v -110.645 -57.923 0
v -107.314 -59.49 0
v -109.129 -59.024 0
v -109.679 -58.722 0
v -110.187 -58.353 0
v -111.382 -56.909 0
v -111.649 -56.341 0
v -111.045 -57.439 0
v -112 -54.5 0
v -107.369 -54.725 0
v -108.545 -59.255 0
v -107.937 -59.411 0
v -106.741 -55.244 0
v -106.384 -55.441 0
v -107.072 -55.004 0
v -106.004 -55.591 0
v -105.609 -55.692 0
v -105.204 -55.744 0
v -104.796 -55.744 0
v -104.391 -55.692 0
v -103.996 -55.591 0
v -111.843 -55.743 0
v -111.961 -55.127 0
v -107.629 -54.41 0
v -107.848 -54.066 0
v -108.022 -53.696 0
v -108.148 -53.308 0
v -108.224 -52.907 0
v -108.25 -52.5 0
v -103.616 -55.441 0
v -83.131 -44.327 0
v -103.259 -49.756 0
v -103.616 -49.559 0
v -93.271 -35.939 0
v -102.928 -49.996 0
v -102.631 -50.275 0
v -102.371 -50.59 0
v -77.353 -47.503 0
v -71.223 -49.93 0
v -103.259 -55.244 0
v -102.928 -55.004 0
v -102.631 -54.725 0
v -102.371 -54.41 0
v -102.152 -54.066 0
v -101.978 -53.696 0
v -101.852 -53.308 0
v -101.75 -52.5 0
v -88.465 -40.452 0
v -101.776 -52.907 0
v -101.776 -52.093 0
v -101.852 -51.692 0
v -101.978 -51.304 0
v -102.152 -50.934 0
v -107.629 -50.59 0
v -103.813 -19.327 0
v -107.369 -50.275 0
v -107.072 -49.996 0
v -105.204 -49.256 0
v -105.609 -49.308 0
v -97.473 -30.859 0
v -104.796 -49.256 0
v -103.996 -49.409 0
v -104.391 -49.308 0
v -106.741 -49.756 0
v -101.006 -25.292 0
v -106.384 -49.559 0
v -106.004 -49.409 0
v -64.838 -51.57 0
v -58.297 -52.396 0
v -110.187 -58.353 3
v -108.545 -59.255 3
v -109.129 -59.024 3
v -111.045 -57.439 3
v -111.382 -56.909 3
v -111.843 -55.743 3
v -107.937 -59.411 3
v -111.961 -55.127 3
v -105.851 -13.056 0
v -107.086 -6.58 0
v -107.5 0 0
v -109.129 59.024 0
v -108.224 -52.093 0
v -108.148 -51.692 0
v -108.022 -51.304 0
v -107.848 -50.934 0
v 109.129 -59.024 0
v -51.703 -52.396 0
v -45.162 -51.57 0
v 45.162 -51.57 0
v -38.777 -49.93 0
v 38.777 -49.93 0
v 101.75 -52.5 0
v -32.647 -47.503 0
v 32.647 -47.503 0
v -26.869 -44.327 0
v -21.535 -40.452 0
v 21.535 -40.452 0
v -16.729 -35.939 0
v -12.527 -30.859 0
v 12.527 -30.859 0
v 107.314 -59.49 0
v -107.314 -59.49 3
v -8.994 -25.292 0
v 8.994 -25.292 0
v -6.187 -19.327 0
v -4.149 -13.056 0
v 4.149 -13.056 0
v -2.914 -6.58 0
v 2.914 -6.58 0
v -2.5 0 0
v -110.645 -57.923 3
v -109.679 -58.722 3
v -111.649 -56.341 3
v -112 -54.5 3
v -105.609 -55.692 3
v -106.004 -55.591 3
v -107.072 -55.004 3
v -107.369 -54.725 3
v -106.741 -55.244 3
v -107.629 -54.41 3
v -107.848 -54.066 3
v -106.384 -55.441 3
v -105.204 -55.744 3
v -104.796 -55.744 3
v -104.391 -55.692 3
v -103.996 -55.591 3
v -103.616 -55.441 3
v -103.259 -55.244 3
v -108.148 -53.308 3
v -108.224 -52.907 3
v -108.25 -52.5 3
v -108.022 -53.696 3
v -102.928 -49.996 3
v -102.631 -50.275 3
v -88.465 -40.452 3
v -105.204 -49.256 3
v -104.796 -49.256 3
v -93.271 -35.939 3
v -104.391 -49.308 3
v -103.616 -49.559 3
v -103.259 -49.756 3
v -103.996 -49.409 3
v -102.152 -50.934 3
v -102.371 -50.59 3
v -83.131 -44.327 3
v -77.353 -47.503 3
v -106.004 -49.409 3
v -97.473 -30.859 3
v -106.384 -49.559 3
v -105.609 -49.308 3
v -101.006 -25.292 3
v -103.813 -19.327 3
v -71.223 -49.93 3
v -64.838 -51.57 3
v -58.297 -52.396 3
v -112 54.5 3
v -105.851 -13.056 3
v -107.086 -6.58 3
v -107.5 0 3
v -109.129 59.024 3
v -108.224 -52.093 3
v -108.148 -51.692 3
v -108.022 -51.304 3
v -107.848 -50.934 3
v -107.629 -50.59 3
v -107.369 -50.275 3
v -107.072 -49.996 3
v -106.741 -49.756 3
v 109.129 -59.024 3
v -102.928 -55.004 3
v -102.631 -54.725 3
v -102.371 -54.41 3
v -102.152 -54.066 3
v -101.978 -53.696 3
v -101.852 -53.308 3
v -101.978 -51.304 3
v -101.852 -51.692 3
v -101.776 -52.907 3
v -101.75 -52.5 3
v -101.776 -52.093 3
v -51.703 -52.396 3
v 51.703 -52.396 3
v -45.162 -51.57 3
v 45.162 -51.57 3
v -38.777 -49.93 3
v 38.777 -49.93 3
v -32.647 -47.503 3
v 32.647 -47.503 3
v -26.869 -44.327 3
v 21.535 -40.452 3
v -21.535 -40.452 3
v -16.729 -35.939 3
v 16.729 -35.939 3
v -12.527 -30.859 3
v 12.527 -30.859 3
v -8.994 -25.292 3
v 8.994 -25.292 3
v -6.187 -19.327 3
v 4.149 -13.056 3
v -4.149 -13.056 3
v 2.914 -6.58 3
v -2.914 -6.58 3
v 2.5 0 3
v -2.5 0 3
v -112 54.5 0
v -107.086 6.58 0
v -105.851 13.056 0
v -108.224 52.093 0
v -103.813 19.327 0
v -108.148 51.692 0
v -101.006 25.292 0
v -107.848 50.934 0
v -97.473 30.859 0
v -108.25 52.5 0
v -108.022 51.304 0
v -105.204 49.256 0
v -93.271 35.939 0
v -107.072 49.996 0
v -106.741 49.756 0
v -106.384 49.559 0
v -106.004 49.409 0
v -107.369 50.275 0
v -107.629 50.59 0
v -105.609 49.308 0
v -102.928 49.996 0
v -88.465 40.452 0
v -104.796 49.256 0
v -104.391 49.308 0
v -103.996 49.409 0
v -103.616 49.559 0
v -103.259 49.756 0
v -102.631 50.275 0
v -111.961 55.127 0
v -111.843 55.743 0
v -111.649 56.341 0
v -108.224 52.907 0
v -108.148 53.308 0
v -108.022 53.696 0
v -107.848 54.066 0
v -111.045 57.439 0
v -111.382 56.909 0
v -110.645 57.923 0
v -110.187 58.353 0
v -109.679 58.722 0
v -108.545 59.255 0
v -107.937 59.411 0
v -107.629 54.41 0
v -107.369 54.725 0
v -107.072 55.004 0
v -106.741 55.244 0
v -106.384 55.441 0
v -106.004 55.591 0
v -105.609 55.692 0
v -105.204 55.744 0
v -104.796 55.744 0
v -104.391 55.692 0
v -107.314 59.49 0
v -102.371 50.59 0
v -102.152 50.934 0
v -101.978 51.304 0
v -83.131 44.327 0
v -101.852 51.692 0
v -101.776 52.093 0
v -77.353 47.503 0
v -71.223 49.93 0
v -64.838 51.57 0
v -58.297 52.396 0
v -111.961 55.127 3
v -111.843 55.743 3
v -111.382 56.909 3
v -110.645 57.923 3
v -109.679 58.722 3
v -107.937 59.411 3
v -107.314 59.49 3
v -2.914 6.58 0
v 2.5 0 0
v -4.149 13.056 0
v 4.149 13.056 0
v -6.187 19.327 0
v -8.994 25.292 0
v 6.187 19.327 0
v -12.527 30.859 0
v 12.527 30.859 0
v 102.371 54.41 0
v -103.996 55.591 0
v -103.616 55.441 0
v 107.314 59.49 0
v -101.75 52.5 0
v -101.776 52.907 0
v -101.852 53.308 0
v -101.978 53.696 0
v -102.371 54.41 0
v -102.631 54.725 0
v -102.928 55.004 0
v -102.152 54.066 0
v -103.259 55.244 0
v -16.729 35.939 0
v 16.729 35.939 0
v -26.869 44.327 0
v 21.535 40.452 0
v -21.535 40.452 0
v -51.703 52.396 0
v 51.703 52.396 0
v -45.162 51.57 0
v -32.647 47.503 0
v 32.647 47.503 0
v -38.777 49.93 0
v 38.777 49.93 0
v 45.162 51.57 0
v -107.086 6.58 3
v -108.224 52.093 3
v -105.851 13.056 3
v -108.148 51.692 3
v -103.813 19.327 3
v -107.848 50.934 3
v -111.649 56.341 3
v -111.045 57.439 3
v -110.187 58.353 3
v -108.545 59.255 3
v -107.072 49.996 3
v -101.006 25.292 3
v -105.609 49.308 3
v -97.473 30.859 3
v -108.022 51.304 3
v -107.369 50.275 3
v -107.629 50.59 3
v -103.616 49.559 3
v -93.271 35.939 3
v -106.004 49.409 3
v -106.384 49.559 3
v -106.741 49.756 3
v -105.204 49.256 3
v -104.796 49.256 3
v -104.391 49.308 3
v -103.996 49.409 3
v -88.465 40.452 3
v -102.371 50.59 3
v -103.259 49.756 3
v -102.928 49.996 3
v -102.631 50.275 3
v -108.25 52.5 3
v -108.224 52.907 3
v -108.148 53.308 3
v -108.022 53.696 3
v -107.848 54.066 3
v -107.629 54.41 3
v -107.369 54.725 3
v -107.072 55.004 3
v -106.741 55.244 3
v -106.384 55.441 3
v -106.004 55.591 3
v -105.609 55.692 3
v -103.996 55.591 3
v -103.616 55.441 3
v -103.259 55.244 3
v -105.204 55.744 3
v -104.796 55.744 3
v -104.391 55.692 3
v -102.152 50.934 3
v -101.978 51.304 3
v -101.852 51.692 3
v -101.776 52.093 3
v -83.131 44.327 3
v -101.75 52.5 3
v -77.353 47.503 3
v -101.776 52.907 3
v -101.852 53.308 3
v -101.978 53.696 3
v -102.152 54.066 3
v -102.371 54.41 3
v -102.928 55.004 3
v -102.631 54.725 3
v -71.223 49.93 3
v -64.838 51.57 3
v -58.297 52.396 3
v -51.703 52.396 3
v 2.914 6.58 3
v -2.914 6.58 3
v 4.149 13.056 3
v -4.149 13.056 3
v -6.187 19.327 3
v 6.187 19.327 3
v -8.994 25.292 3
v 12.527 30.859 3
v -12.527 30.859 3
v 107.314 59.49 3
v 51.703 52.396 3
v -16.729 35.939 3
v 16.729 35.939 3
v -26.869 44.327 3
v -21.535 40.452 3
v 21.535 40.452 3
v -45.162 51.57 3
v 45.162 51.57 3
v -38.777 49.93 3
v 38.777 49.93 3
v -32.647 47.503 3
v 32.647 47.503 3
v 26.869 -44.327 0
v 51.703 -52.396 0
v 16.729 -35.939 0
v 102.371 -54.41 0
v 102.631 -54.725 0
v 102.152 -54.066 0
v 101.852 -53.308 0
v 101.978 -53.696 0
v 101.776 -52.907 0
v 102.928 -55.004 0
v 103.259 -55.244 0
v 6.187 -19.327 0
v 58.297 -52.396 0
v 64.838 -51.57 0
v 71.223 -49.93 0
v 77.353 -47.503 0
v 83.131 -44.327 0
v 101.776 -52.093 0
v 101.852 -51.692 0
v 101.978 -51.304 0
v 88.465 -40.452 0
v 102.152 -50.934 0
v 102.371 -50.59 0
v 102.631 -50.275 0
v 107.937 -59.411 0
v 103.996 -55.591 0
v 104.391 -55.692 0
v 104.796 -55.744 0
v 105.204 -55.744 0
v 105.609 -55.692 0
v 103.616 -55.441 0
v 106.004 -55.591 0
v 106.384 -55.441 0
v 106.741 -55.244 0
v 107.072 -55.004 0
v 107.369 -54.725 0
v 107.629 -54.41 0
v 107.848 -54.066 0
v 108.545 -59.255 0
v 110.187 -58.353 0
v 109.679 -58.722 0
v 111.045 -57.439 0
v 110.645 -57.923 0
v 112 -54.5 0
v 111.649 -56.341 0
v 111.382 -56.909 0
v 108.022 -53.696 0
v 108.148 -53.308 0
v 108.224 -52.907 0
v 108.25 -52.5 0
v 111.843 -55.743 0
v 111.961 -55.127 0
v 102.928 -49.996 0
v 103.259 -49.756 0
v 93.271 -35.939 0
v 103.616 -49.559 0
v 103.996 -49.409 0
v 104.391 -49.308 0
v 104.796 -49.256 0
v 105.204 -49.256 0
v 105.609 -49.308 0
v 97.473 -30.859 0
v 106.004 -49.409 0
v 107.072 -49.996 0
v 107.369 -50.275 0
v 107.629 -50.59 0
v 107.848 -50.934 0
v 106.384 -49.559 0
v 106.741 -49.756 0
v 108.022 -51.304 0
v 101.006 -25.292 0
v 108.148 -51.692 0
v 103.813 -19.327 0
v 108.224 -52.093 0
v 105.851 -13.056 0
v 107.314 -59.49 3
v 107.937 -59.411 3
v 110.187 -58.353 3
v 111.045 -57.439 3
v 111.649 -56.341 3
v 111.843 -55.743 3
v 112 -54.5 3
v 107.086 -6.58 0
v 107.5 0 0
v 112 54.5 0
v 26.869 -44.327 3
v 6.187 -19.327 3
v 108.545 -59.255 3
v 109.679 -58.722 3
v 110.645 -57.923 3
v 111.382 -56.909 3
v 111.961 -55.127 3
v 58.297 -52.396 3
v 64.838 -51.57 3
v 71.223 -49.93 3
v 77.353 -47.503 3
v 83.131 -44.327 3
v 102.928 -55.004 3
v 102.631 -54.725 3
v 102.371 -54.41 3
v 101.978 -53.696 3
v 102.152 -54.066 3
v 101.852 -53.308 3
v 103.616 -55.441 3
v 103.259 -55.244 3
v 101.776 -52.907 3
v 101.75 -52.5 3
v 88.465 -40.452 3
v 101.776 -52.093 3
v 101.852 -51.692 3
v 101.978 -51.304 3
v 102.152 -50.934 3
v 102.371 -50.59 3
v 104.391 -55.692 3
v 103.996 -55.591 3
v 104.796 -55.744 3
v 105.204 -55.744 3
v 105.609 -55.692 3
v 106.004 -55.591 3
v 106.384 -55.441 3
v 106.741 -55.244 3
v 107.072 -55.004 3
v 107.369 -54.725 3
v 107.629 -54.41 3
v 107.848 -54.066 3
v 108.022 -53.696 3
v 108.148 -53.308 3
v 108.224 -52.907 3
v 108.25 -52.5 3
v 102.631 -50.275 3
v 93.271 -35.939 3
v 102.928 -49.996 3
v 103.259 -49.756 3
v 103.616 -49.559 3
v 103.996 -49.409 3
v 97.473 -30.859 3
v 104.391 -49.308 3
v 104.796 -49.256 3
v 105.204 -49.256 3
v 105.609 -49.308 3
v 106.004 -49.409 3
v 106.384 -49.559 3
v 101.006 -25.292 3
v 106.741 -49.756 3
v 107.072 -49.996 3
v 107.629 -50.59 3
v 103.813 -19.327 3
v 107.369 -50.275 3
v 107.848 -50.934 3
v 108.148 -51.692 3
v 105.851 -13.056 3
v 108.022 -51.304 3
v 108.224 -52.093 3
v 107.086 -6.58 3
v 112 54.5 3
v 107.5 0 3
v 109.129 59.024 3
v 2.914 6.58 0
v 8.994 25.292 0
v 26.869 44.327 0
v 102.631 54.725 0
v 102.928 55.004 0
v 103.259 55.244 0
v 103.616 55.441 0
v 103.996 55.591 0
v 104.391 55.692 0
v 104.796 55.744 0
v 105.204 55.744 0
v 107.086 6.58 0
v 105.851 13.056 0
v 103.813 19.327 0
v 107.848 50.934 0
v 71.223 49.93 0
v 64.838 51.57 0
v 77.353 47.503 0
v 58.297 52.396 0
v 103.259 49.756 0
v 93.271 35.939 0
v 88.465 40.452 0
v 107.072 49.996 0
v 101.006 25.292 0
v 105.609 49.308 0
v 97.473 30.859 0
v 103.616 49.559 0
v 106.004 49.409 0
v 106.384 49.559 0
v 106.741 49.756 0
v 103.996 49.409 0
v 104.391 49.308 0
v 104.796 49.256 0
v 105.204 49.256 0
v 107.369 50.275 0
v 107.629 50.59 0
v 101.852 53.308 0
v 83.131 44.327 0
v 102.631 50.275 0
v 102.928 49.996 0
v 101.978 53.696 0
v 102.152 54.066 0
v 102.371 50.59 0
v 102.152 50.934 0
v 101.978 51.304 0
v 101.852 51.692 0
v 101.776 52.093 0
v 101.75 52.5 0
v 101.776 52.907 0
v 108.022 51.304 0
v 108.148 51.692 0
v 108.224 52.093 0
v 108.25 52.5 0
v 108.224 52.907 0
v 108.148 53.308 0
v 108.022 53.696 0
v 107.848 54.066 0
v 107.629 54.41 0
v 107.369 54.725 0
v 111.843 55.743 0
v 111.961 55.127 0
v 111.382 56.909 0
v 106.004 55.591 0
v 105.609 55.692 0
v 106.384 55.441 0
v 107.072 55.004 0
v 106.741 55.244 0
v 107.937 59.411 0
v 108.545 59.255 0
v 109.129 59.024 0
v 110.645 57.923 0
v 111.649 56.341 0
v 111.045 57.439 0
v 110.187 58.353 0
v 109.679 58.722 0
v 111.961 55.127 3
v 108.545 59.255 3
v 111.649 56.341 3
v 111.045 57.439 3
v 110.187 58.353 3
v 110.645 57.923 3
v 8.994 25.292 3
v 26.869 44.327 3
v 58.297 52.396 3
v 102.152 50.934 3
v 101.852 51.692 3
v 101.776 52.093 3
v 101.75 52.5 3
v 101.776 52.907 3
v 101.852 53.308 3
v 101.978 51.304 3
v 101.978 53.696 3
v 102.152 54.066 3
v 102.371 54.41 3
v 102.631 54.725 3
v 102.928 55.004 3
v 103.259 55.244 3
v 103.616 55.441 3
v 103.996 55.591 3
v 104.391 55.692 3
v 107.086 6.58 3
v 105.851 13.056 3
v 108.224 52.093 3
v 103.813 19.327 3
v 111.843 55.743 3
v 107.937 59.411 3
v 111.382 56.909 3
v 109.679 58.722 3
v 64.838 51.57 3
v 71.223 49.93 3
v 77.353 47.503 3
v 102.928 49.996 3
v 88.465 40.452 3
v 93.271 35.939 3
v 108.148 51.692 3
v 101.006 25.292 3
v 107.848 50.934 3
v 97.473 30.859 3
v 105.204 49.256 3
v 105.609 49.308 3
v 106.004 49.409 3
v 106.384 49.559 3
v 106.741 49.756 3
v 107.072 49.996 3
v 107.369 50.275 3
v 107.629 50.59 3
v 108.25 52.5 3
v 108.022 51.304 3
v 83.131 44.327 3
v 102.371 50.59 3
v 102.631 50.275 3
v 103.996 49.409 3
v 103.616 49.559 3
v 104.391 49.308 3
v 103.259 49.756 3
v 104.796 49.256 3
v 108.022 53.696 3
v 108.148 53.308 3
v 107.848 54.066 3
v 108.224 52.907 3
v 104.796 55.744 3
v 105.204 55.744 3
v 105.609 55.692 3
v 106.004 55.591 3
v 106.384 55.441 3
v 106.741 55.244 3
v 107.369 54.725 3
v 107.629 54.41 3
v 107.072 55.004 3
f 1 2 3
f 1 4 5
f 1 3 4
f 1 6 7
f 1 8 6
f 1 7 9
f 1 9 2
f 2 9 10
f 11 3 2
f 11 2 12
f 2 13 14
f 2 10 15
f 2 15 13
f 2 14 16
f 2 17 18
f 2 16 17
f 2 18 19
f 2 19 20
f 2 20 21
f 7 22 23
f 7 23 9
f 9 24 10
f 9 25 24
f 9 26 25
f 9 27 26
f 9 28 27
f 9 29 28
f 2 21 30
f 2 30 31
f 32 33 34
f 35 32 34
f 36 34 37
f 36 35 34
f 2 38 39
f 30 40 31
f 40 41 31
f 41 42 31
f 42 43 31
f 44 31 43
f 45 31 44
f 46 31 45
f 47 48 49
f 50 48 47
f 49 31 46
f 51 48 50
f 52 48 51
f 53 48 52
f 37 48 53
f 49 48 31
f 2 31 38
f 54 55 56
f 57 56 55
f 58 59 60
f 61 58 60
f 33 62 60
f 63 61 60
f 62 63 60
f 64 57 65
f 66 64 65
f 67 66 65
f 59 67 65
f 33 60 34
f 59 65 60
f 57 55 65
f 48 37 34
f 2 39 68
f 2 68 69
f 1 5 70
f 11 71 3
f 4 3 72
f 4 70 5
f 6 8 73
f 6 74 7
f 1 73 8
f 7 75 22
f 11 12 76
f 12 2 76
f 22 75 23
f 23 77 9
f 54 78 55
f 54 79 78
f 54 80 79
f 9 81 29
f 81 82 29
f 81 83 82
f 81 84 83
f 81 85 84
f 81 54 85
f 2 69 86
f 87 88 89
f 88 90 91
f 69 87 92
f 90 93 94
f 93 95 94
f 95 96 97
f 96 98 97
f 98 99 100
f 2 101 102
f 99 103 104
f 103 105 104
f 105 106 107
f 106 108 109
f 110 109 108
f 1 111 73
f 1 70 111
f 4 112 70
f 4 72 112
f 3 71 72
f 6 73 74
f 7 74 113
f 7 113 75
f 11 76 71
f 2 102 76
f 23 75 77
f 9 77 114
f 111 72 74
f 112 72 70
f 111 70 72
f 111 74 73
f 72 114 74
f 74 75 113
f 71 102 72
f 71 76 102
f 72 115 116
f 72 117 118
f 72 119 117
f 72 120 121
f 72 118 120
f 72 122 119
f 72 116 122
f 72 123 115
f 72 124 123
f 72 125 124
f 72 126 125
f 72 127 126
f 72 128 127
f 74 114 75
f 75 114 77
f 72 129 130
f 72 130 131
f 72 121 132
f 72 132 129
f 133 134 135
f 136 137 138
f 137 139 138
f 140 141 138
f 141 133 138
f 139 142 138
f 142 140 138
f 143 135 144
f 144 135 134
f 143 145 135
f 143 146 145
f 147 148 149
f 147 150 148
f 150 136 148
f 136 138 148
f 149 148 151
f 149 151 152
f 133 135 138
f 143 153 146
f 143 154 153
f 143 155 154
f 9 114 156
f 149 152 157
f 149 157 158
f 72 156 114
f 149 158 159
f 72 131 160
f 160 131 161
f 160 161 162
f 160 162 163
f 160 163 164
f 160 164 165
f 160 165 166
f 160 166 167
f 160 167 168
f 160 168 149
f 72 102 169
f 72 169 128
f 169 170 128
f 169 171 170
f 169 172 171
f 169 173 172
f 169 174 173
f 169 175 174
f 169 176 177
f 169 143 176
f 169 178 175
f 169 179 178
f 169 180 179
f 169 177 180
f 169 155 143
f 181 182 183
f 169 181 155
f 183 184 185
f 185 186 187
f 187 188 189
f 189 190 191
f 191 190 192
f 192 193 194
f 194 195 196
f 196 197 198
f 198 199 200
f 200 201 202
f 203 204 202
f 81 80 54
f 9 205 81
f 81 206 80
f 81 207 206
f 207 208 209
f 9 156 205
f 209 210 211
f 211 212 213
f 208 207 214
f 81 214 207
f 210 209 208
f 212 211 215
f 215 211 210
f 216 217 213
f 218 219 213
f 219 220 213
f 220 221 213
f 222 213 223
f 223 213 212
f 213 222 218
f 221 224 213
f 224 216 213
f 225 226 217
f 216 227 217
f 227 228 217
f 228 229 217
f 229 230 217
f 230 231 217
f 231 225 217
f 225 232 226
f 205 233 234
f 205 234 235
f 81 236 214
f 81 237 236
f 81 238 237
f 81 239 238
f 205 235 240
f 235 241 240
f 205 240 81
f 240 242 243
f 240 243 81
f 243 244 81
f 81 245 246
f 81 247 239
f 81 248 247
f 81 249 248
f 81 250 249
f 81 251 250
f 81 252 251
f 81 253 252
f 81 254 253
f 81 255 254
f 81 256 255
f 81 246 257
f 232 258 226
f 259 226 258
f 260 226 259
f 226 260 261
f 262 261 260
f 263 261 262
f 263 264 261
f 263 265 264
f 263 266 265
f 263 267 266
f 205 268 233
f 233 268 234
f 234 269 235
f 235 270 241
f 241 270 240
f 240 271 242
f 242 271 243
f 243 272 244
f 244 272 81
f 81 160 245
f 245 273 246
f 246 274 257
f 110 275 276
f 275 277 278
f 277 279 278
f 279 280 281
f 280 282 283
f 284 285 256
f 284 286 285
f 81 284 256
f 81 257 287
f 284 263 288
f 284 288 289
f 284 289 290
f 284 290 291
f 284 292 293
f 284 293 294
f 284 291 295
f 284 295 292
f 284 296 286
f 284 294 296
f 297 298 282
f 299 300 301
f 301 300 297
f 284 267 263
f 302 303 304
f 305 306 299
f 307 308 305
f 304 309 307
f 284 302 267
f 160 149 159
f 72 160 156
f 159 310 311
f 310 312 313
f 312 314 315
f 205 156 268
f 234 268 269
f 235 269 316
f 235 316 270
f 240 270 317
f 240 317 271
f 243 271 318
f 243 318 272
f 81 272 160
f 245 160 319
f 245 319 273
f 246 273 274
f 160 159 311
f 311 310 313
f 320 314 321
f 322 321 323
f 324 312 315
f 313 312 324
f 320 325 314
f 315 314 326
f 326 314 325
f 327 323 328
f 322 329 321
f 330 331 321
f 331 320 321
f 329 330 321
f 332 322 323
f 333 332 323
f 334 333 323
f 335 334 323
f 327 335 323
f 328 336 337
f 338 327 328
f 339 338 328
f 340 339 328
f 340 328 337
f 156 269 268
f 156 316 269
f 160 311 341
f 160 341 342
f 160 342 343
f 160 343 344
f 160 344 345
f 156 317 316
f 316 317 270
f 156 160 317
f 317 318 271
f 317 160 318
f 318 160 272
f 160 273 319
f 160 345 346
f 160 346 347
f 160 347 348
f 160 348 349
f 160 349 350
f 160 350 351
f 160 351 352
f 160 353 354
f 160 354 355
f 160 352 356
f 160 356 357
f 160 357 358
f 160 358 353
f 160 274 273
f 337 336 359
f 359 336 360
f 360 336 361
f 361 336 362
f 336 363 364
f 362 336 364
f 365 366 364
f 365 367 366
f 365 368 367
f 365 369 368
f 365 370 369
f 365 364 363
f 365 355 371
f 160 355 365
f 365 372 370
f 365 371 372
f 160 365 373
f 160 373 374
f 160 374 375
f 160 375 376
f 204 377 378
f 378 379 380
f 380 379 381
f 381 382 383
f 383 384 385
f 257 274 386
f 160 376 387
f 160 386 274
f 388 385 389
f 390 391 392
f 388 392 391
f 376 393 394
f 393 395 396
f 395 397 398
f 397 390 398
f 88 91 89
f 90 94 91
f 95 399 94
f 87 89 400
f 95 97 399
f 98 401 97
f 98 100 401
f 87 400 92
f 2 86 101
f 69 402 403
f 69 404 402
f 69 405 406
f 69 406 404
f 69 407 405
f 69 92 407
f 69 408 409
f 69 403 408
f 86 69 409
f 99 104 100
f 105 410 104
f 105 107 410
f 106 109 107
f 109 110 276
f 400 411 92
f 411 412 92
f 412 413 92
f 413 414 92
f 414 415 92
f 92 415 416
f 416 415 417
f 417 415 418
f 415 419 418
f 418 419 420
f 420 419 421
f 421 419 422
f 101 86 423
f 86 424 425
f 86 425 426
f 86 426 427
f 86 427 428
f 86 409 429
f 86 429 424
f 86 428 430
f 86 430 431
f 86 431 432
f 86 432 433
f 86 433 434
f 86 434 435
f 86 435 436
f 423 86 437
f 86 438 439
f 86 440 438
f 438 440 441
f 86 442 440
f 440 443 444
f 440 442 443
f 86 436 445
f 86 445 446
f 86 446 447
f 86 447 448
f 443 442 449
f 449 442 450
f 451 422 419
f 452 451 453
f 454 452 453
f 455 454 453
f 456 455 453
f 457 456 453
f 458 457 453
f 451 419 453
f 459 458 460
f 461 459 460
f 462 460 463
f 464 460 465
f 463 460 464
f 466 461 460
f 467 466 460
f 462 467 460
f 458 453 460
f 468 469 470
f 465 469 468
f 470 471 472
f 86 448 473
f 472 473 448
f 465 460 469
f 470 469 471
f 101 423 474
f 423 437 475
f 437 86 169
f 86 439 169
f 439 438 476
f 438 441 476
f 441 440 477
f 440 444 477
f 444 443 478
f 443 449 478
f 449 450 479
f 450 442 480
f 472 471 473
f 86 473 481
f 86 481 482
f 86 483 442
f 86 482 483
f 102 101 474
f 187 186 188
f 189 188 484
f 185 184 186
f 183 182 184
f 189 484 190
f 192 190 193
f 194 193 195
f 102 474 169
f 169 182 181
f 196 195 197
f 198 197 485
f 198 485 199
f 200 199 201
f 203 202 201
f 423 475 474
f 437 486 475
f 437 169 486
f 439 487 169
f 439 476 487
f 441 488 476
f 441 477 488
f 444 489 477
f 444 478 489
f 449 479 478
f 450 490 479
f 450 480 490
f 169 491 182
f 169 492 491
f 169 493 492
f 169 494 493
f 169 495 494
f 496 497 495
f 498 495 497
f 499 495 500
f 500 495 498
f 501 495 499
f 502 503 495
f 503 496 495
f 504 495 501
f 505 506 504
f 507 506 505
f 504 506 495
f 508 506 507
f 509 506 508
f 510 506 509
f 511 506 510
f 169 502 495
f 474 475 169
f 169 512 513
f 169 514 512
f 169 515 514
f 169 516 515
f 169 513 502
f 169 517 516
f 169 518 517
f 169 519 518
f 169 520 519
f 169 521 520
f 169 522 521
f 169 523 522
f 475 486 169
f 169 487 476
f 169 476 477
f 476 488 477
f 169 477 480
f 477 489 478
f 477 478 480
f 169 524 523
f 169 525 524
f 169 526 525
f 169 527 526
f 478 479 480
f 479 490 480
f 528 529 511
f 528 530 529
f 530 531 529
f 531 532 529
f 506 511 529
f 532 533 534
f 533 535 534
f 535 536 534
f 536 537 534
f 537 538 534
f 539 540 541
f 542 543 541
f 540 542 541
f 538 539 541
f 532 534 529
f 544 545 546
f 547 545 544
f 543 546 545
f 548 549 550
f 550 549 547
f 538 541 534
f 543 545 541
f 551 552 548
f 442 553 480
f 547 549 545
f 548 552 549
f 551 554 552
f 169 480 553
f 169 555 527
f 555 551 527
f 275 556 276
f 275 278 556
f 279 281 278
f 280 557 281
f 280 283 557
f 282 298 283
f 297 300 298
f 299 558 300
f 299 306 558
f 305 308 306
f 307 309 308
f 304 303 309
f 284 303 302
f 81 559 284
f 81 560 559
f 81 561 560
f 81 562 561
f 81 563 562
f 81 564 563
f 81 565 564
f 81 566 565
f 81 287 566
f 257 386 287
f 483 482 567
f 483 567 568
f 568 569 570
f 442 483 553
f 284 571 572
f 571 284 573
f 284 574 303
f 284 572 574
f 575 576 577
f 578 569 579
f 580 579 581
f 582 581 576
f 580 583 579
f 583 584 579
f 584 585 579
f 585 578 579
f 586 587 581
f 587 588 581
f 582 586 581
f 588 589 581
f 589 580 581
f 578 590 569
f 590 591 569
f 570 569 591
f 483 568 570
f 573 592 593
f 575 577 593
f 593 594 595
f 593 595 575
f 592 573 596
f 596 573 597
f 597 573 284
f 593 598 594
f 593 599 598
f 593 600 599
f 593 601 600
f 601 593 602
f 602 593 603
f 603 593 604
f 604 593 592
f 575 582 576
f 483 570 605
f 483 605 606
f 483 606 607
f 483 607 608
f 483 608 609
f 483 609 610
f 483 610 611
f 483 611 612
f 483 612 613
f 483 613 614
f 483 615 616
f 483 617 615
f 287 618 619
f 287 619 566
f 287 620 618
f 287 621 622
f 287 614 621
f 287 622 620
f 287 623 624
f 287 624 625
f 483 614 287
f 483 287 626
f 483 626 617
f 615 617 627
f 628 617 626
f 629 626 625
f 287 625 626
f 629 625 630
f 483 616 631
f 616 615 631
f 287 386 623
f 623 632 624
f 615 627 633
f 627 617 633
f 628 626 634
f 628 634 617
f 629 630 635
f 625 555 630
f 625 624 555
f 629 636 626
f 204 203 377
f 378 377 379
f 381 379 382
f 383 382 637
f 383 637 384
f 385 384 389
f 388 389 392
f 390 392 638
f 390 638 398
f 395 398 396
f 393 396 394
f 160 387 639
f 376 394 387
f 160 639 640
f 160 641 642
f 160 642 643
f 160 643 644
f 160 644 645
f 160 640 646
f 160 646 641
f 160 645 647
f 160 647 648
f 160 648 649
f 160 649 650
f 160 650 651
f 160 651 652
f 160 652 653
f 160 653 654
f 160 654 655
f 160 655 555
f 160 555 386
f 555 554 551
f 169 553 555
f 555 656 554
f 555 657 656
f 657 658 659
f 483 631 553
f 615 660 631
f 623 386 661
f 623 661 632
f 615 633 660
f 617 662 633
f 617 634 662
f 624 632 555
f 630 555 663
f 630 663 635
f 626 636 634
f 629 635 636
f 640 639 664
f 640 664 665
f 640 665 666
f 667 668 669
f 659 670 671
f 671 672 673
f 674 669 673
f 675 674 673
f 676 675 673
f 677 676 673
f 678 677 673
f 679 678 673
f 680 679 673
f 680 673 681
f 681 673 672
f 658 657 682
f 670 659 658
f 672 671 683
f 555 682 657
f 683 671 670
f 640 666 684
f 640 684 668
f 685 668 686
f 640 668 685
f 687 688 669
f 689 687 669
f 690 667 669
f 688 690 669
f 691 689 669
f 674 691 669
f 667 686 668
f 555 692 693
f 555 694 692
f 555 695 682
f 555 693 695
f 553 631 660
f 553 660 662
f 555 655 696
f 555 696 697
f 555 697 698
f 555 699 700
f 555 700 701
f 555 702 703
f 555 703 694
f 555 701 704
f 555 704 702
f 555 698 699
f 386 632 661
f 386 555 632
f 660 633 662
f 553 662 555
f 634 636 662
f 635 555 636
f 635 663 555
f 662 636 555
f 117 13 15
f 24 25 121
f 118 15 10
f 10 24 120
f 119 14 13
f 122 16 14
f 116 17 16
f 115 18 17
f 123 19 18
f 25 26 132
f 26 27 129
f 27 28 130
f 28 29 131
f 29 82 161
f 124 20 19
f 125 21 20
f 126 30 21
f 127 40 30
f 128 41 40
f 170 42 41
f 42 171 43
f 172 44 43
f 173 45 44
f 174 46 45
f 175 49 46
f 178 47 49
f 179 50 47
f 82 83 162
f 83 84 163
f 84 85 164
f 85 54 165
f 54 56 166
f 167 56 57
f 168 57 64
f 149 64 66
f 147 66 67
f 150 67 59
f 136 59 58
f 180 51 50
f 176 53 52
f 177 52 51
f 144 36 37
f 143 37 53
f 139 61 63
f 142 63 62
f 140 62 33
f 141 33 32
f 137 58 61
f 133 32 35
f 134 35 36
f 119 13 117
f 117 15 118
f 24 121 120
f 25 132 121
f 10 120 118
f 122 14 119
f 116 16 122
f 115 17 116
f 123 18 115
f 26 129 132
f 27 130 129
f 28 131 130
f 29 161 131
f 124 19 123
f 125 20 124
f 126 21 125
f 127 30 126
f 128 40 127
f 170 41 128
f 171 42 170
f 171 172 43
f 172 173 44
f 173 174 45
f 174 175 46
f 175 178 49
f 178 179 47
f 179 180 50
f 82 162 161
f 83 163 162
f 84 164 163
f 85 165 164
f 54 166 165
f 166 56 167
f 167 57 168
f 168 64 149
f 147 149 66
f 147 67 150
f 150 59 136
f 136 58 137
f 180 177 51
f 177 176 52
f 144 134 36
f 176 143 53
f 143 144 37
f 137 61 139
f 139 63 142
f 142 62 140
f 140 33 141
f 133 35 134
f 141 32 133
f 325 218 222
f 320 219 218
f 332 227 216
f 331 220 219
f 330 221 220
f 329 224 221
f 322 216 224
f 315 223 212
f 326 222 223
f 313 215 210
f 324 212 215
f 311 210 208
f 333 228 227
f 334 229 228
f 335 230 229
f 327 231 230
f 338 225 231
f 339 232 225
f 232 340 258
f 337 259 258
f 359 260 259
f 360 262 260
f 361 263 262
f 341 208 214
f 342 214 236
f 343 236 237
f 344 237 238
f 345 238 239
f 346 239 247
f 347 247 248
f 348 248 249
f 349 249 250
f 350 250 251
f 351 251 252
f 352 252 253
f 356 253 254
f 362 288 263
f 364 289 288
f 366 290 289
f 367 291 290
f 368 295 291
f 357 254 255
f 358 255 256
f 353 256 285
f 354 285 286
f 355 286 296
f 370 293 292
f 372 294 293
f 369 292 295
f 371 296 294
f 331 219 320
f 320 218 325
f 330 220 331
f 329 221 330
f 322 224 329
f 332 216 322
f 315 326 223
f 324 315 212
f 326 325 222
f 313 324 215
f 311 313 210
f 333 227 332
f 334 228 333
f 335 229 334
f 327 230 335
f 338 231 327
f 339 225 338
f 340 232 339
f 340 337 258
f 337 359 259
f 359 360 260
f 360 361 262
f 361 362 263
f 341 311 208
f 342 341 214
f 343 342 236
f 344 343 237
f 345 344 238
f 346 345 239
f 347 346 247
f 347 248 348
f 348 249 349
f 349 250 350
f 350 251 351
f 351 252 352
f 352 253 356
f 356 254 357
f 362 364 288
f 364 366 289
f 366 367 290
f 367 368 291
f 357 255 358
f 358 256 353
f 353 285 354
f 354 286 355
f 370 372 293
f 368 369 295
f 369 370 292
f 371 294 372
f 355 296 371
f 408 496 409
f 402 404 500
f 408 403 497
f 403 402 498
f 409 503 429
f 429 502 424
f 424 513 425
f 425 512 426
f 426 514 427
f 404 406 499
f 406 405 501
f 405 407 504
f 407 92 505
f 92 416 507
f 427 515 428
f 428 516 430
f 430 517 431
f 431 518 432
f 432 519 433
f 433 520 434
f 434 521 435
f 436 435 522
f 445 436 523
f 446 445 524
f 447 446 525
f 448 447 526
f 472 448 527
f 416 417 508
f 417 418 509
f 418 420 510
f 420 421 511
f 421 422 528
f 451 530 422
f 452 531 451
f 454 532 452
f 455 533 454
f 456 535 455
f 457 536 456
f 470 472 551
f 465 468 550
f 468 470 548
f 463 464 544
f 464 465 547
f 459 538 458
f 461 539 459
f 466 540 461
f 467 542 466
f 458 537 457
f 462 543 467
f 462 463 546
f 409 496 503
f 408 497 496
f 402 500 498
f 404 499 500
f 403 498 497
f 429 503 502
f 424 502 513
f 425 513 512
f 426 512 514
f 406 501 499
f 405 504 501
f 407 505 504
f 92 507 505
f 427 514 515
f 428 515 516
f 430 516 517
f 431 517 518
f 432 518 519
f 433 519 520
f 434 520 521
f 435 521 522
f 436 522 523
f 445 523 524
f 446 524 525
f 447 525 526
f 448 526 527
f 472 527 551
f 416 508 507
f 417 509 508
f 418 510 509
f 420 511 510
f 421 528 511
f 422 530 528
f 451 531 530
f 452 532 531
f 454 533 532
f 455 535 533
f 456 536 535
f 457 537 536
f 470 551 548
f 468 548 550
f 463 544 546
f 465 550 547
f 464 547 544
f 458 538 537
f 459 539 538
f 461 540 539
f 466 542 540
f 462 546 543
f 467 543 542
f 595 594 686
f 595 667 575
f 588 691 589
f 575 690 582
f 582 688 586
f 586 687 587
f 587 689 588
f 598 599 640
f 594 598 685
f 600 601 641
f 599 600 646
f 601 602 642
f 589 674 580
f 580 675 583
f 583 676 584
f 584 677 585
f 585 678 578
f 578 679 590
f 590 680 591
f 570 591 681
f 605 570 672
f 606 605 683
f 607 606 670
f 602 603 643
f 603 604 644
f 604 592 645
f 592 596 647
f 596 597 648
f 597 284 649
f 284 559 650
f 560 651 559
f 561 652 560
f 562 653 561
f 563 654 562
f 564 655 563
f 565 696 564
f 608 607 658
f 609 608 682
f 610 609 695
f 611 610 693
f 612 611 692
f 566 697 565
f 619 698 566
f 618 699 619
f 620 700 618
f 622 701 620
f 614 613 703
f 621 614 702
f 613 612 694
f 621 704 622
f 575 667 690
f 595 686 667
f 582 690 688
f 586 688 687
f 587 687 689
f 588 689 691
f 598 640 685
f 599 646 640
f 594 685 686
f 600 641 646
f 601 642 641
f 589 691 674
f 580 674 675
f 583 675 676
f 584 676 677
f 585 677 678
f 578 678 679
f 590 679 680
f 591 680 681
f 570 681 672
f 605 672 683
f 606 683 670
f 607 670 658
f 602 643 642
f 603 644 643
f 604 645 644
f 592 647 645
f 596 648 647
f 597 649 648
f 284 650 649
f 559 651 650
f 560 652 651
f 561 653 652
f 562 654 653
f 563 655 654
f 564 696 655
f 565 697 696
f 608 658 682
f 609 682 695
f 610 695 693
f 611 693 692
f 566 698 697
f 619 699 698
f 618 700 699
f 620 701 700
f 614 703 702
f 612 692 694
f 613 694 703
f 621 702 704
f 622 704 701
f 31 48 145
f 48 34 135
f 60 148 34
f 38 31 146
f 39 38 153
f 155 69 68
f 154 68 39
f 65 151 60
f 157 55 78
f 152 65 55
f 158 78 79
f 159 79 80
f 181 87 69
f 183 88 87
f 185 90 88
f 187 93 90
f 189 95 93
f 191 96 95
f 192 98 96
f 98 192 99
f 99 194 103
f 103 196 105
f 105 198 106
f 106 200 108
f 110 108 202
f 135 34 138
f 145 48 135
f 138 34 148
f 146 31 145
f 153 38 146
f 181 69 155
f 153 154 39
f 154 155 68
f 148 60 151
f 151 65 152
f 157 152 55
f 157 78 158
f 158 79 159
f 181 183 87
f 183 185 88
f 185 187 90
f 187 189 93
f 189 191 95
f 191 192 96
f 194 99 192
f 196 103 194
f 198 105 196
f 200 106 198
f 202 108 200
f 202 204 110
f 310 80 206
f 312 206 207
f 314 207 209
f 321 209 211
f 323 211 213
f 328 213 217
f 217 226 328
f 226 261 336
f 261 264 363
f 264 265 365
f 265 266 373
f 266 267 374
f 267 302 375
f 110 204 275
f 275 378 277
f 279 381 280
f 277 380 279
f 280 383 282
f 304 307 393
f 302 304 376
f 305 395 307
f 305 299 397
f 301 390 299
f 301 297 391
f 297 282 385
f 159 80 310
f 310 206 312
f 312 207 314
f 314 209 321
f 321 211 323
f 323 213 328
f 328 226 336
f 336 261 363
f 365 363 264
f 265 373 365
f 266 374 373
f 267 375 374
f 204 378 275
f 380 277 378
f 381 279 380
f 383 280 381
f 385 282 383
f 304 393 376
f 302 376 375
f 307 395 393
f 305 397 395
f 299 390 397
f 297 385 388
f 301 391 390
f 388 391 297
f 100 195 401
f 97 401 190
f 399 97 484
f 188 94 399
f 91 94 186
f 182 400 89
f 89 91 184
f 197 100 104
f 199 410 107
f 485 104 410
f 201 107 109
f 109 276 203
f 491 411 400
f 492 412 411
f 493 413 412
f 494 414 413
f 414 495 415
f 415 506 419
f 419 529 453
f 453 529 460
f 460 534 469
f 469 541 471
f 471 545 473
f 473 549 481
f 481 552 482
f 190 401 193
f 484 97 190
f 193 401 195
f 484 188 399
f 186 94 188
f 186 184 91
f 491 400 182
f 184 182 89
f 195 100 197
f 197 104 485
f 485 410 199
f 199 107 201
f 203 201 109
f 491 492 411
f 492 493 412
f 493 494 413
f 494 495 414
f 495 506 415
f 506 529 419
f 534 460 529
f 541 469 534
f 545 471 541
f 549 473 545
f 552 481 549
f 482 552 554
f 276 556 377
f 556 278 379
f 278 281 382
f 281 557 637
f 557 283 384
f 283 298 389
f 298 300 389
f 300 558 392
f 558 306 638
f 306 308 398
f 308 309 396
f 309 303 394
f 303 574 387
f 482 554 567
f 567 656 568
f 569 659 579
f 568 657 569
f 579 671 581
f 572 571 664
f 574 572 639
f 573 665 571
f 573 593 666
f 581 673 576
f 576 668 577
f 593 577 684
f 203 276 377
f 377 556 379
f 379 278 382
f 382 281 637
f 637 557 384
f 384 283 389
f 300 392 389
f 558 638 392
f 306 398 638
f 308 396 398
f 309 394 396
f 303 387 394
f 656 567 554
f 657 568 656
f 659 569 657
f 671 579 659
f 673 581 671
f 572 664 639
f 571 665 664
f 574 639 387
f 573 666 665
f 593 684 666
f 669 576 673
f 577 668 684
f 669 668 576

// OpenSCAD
$fn = 50;

difference() {
	union() {
		hull() {
			translate(v = [-107.0, 54.5, 0]) {
				cylinder(h = 3, r = 5);
			}
			translate(v = [107.0, 54.5, 0]) {
				cylinder(h = 3, r = 5);
			}
			translate(v = [-107.0, -54.5, 0]) {
				cylinder(h = 3, r = 5);
			}
			translate(v = [107.0, -54.5, 0]) {
				cylinder(h = 3, r = 5);
			}
		}
	}
	union() {
		translate(v = [-105.0, -52.5, -100.0]) {
			cylinder(h = 200, r = 3.25);
		}
		translate(v = [-105.0, 52.5, -100.0]) {
			cylinder(h = 200, r = 3.25);
		}
		translate(v = [105.0, -52.5, -100.0]) {
			cylinder(h = 200, r = 3.25);
		}
		translate(v = [105.0, 52.5, -100.0]) {
			cylinder(h = 200, r = 3.25);
		}
		translate(v = [-105.0, -52.5, -100.0]) {
			cylinder(h = 200, r = 1.8);
		}
		translate(v = [-105.0, 52.5, -100.0]) {
			cylinder(h = 200, r = 1.8);
		}
		translate(v = [105.0, -52.5, -100.0]) {
			cylinder(h = 200, r = 1.8);
		}
		translate(v = [105.0, 52.5, -100.0]) {
			cylinder(h = 200, r = 1.8);
		}
		translate(v = [-55.0, 0, 0.0]) {
			cylinder(h = 3, r = 52.5);
		}
		translate(v = [55.0, 0, 0.0]) {
			cylinder(h = 3, r = 52.5);
		}
	}
}
